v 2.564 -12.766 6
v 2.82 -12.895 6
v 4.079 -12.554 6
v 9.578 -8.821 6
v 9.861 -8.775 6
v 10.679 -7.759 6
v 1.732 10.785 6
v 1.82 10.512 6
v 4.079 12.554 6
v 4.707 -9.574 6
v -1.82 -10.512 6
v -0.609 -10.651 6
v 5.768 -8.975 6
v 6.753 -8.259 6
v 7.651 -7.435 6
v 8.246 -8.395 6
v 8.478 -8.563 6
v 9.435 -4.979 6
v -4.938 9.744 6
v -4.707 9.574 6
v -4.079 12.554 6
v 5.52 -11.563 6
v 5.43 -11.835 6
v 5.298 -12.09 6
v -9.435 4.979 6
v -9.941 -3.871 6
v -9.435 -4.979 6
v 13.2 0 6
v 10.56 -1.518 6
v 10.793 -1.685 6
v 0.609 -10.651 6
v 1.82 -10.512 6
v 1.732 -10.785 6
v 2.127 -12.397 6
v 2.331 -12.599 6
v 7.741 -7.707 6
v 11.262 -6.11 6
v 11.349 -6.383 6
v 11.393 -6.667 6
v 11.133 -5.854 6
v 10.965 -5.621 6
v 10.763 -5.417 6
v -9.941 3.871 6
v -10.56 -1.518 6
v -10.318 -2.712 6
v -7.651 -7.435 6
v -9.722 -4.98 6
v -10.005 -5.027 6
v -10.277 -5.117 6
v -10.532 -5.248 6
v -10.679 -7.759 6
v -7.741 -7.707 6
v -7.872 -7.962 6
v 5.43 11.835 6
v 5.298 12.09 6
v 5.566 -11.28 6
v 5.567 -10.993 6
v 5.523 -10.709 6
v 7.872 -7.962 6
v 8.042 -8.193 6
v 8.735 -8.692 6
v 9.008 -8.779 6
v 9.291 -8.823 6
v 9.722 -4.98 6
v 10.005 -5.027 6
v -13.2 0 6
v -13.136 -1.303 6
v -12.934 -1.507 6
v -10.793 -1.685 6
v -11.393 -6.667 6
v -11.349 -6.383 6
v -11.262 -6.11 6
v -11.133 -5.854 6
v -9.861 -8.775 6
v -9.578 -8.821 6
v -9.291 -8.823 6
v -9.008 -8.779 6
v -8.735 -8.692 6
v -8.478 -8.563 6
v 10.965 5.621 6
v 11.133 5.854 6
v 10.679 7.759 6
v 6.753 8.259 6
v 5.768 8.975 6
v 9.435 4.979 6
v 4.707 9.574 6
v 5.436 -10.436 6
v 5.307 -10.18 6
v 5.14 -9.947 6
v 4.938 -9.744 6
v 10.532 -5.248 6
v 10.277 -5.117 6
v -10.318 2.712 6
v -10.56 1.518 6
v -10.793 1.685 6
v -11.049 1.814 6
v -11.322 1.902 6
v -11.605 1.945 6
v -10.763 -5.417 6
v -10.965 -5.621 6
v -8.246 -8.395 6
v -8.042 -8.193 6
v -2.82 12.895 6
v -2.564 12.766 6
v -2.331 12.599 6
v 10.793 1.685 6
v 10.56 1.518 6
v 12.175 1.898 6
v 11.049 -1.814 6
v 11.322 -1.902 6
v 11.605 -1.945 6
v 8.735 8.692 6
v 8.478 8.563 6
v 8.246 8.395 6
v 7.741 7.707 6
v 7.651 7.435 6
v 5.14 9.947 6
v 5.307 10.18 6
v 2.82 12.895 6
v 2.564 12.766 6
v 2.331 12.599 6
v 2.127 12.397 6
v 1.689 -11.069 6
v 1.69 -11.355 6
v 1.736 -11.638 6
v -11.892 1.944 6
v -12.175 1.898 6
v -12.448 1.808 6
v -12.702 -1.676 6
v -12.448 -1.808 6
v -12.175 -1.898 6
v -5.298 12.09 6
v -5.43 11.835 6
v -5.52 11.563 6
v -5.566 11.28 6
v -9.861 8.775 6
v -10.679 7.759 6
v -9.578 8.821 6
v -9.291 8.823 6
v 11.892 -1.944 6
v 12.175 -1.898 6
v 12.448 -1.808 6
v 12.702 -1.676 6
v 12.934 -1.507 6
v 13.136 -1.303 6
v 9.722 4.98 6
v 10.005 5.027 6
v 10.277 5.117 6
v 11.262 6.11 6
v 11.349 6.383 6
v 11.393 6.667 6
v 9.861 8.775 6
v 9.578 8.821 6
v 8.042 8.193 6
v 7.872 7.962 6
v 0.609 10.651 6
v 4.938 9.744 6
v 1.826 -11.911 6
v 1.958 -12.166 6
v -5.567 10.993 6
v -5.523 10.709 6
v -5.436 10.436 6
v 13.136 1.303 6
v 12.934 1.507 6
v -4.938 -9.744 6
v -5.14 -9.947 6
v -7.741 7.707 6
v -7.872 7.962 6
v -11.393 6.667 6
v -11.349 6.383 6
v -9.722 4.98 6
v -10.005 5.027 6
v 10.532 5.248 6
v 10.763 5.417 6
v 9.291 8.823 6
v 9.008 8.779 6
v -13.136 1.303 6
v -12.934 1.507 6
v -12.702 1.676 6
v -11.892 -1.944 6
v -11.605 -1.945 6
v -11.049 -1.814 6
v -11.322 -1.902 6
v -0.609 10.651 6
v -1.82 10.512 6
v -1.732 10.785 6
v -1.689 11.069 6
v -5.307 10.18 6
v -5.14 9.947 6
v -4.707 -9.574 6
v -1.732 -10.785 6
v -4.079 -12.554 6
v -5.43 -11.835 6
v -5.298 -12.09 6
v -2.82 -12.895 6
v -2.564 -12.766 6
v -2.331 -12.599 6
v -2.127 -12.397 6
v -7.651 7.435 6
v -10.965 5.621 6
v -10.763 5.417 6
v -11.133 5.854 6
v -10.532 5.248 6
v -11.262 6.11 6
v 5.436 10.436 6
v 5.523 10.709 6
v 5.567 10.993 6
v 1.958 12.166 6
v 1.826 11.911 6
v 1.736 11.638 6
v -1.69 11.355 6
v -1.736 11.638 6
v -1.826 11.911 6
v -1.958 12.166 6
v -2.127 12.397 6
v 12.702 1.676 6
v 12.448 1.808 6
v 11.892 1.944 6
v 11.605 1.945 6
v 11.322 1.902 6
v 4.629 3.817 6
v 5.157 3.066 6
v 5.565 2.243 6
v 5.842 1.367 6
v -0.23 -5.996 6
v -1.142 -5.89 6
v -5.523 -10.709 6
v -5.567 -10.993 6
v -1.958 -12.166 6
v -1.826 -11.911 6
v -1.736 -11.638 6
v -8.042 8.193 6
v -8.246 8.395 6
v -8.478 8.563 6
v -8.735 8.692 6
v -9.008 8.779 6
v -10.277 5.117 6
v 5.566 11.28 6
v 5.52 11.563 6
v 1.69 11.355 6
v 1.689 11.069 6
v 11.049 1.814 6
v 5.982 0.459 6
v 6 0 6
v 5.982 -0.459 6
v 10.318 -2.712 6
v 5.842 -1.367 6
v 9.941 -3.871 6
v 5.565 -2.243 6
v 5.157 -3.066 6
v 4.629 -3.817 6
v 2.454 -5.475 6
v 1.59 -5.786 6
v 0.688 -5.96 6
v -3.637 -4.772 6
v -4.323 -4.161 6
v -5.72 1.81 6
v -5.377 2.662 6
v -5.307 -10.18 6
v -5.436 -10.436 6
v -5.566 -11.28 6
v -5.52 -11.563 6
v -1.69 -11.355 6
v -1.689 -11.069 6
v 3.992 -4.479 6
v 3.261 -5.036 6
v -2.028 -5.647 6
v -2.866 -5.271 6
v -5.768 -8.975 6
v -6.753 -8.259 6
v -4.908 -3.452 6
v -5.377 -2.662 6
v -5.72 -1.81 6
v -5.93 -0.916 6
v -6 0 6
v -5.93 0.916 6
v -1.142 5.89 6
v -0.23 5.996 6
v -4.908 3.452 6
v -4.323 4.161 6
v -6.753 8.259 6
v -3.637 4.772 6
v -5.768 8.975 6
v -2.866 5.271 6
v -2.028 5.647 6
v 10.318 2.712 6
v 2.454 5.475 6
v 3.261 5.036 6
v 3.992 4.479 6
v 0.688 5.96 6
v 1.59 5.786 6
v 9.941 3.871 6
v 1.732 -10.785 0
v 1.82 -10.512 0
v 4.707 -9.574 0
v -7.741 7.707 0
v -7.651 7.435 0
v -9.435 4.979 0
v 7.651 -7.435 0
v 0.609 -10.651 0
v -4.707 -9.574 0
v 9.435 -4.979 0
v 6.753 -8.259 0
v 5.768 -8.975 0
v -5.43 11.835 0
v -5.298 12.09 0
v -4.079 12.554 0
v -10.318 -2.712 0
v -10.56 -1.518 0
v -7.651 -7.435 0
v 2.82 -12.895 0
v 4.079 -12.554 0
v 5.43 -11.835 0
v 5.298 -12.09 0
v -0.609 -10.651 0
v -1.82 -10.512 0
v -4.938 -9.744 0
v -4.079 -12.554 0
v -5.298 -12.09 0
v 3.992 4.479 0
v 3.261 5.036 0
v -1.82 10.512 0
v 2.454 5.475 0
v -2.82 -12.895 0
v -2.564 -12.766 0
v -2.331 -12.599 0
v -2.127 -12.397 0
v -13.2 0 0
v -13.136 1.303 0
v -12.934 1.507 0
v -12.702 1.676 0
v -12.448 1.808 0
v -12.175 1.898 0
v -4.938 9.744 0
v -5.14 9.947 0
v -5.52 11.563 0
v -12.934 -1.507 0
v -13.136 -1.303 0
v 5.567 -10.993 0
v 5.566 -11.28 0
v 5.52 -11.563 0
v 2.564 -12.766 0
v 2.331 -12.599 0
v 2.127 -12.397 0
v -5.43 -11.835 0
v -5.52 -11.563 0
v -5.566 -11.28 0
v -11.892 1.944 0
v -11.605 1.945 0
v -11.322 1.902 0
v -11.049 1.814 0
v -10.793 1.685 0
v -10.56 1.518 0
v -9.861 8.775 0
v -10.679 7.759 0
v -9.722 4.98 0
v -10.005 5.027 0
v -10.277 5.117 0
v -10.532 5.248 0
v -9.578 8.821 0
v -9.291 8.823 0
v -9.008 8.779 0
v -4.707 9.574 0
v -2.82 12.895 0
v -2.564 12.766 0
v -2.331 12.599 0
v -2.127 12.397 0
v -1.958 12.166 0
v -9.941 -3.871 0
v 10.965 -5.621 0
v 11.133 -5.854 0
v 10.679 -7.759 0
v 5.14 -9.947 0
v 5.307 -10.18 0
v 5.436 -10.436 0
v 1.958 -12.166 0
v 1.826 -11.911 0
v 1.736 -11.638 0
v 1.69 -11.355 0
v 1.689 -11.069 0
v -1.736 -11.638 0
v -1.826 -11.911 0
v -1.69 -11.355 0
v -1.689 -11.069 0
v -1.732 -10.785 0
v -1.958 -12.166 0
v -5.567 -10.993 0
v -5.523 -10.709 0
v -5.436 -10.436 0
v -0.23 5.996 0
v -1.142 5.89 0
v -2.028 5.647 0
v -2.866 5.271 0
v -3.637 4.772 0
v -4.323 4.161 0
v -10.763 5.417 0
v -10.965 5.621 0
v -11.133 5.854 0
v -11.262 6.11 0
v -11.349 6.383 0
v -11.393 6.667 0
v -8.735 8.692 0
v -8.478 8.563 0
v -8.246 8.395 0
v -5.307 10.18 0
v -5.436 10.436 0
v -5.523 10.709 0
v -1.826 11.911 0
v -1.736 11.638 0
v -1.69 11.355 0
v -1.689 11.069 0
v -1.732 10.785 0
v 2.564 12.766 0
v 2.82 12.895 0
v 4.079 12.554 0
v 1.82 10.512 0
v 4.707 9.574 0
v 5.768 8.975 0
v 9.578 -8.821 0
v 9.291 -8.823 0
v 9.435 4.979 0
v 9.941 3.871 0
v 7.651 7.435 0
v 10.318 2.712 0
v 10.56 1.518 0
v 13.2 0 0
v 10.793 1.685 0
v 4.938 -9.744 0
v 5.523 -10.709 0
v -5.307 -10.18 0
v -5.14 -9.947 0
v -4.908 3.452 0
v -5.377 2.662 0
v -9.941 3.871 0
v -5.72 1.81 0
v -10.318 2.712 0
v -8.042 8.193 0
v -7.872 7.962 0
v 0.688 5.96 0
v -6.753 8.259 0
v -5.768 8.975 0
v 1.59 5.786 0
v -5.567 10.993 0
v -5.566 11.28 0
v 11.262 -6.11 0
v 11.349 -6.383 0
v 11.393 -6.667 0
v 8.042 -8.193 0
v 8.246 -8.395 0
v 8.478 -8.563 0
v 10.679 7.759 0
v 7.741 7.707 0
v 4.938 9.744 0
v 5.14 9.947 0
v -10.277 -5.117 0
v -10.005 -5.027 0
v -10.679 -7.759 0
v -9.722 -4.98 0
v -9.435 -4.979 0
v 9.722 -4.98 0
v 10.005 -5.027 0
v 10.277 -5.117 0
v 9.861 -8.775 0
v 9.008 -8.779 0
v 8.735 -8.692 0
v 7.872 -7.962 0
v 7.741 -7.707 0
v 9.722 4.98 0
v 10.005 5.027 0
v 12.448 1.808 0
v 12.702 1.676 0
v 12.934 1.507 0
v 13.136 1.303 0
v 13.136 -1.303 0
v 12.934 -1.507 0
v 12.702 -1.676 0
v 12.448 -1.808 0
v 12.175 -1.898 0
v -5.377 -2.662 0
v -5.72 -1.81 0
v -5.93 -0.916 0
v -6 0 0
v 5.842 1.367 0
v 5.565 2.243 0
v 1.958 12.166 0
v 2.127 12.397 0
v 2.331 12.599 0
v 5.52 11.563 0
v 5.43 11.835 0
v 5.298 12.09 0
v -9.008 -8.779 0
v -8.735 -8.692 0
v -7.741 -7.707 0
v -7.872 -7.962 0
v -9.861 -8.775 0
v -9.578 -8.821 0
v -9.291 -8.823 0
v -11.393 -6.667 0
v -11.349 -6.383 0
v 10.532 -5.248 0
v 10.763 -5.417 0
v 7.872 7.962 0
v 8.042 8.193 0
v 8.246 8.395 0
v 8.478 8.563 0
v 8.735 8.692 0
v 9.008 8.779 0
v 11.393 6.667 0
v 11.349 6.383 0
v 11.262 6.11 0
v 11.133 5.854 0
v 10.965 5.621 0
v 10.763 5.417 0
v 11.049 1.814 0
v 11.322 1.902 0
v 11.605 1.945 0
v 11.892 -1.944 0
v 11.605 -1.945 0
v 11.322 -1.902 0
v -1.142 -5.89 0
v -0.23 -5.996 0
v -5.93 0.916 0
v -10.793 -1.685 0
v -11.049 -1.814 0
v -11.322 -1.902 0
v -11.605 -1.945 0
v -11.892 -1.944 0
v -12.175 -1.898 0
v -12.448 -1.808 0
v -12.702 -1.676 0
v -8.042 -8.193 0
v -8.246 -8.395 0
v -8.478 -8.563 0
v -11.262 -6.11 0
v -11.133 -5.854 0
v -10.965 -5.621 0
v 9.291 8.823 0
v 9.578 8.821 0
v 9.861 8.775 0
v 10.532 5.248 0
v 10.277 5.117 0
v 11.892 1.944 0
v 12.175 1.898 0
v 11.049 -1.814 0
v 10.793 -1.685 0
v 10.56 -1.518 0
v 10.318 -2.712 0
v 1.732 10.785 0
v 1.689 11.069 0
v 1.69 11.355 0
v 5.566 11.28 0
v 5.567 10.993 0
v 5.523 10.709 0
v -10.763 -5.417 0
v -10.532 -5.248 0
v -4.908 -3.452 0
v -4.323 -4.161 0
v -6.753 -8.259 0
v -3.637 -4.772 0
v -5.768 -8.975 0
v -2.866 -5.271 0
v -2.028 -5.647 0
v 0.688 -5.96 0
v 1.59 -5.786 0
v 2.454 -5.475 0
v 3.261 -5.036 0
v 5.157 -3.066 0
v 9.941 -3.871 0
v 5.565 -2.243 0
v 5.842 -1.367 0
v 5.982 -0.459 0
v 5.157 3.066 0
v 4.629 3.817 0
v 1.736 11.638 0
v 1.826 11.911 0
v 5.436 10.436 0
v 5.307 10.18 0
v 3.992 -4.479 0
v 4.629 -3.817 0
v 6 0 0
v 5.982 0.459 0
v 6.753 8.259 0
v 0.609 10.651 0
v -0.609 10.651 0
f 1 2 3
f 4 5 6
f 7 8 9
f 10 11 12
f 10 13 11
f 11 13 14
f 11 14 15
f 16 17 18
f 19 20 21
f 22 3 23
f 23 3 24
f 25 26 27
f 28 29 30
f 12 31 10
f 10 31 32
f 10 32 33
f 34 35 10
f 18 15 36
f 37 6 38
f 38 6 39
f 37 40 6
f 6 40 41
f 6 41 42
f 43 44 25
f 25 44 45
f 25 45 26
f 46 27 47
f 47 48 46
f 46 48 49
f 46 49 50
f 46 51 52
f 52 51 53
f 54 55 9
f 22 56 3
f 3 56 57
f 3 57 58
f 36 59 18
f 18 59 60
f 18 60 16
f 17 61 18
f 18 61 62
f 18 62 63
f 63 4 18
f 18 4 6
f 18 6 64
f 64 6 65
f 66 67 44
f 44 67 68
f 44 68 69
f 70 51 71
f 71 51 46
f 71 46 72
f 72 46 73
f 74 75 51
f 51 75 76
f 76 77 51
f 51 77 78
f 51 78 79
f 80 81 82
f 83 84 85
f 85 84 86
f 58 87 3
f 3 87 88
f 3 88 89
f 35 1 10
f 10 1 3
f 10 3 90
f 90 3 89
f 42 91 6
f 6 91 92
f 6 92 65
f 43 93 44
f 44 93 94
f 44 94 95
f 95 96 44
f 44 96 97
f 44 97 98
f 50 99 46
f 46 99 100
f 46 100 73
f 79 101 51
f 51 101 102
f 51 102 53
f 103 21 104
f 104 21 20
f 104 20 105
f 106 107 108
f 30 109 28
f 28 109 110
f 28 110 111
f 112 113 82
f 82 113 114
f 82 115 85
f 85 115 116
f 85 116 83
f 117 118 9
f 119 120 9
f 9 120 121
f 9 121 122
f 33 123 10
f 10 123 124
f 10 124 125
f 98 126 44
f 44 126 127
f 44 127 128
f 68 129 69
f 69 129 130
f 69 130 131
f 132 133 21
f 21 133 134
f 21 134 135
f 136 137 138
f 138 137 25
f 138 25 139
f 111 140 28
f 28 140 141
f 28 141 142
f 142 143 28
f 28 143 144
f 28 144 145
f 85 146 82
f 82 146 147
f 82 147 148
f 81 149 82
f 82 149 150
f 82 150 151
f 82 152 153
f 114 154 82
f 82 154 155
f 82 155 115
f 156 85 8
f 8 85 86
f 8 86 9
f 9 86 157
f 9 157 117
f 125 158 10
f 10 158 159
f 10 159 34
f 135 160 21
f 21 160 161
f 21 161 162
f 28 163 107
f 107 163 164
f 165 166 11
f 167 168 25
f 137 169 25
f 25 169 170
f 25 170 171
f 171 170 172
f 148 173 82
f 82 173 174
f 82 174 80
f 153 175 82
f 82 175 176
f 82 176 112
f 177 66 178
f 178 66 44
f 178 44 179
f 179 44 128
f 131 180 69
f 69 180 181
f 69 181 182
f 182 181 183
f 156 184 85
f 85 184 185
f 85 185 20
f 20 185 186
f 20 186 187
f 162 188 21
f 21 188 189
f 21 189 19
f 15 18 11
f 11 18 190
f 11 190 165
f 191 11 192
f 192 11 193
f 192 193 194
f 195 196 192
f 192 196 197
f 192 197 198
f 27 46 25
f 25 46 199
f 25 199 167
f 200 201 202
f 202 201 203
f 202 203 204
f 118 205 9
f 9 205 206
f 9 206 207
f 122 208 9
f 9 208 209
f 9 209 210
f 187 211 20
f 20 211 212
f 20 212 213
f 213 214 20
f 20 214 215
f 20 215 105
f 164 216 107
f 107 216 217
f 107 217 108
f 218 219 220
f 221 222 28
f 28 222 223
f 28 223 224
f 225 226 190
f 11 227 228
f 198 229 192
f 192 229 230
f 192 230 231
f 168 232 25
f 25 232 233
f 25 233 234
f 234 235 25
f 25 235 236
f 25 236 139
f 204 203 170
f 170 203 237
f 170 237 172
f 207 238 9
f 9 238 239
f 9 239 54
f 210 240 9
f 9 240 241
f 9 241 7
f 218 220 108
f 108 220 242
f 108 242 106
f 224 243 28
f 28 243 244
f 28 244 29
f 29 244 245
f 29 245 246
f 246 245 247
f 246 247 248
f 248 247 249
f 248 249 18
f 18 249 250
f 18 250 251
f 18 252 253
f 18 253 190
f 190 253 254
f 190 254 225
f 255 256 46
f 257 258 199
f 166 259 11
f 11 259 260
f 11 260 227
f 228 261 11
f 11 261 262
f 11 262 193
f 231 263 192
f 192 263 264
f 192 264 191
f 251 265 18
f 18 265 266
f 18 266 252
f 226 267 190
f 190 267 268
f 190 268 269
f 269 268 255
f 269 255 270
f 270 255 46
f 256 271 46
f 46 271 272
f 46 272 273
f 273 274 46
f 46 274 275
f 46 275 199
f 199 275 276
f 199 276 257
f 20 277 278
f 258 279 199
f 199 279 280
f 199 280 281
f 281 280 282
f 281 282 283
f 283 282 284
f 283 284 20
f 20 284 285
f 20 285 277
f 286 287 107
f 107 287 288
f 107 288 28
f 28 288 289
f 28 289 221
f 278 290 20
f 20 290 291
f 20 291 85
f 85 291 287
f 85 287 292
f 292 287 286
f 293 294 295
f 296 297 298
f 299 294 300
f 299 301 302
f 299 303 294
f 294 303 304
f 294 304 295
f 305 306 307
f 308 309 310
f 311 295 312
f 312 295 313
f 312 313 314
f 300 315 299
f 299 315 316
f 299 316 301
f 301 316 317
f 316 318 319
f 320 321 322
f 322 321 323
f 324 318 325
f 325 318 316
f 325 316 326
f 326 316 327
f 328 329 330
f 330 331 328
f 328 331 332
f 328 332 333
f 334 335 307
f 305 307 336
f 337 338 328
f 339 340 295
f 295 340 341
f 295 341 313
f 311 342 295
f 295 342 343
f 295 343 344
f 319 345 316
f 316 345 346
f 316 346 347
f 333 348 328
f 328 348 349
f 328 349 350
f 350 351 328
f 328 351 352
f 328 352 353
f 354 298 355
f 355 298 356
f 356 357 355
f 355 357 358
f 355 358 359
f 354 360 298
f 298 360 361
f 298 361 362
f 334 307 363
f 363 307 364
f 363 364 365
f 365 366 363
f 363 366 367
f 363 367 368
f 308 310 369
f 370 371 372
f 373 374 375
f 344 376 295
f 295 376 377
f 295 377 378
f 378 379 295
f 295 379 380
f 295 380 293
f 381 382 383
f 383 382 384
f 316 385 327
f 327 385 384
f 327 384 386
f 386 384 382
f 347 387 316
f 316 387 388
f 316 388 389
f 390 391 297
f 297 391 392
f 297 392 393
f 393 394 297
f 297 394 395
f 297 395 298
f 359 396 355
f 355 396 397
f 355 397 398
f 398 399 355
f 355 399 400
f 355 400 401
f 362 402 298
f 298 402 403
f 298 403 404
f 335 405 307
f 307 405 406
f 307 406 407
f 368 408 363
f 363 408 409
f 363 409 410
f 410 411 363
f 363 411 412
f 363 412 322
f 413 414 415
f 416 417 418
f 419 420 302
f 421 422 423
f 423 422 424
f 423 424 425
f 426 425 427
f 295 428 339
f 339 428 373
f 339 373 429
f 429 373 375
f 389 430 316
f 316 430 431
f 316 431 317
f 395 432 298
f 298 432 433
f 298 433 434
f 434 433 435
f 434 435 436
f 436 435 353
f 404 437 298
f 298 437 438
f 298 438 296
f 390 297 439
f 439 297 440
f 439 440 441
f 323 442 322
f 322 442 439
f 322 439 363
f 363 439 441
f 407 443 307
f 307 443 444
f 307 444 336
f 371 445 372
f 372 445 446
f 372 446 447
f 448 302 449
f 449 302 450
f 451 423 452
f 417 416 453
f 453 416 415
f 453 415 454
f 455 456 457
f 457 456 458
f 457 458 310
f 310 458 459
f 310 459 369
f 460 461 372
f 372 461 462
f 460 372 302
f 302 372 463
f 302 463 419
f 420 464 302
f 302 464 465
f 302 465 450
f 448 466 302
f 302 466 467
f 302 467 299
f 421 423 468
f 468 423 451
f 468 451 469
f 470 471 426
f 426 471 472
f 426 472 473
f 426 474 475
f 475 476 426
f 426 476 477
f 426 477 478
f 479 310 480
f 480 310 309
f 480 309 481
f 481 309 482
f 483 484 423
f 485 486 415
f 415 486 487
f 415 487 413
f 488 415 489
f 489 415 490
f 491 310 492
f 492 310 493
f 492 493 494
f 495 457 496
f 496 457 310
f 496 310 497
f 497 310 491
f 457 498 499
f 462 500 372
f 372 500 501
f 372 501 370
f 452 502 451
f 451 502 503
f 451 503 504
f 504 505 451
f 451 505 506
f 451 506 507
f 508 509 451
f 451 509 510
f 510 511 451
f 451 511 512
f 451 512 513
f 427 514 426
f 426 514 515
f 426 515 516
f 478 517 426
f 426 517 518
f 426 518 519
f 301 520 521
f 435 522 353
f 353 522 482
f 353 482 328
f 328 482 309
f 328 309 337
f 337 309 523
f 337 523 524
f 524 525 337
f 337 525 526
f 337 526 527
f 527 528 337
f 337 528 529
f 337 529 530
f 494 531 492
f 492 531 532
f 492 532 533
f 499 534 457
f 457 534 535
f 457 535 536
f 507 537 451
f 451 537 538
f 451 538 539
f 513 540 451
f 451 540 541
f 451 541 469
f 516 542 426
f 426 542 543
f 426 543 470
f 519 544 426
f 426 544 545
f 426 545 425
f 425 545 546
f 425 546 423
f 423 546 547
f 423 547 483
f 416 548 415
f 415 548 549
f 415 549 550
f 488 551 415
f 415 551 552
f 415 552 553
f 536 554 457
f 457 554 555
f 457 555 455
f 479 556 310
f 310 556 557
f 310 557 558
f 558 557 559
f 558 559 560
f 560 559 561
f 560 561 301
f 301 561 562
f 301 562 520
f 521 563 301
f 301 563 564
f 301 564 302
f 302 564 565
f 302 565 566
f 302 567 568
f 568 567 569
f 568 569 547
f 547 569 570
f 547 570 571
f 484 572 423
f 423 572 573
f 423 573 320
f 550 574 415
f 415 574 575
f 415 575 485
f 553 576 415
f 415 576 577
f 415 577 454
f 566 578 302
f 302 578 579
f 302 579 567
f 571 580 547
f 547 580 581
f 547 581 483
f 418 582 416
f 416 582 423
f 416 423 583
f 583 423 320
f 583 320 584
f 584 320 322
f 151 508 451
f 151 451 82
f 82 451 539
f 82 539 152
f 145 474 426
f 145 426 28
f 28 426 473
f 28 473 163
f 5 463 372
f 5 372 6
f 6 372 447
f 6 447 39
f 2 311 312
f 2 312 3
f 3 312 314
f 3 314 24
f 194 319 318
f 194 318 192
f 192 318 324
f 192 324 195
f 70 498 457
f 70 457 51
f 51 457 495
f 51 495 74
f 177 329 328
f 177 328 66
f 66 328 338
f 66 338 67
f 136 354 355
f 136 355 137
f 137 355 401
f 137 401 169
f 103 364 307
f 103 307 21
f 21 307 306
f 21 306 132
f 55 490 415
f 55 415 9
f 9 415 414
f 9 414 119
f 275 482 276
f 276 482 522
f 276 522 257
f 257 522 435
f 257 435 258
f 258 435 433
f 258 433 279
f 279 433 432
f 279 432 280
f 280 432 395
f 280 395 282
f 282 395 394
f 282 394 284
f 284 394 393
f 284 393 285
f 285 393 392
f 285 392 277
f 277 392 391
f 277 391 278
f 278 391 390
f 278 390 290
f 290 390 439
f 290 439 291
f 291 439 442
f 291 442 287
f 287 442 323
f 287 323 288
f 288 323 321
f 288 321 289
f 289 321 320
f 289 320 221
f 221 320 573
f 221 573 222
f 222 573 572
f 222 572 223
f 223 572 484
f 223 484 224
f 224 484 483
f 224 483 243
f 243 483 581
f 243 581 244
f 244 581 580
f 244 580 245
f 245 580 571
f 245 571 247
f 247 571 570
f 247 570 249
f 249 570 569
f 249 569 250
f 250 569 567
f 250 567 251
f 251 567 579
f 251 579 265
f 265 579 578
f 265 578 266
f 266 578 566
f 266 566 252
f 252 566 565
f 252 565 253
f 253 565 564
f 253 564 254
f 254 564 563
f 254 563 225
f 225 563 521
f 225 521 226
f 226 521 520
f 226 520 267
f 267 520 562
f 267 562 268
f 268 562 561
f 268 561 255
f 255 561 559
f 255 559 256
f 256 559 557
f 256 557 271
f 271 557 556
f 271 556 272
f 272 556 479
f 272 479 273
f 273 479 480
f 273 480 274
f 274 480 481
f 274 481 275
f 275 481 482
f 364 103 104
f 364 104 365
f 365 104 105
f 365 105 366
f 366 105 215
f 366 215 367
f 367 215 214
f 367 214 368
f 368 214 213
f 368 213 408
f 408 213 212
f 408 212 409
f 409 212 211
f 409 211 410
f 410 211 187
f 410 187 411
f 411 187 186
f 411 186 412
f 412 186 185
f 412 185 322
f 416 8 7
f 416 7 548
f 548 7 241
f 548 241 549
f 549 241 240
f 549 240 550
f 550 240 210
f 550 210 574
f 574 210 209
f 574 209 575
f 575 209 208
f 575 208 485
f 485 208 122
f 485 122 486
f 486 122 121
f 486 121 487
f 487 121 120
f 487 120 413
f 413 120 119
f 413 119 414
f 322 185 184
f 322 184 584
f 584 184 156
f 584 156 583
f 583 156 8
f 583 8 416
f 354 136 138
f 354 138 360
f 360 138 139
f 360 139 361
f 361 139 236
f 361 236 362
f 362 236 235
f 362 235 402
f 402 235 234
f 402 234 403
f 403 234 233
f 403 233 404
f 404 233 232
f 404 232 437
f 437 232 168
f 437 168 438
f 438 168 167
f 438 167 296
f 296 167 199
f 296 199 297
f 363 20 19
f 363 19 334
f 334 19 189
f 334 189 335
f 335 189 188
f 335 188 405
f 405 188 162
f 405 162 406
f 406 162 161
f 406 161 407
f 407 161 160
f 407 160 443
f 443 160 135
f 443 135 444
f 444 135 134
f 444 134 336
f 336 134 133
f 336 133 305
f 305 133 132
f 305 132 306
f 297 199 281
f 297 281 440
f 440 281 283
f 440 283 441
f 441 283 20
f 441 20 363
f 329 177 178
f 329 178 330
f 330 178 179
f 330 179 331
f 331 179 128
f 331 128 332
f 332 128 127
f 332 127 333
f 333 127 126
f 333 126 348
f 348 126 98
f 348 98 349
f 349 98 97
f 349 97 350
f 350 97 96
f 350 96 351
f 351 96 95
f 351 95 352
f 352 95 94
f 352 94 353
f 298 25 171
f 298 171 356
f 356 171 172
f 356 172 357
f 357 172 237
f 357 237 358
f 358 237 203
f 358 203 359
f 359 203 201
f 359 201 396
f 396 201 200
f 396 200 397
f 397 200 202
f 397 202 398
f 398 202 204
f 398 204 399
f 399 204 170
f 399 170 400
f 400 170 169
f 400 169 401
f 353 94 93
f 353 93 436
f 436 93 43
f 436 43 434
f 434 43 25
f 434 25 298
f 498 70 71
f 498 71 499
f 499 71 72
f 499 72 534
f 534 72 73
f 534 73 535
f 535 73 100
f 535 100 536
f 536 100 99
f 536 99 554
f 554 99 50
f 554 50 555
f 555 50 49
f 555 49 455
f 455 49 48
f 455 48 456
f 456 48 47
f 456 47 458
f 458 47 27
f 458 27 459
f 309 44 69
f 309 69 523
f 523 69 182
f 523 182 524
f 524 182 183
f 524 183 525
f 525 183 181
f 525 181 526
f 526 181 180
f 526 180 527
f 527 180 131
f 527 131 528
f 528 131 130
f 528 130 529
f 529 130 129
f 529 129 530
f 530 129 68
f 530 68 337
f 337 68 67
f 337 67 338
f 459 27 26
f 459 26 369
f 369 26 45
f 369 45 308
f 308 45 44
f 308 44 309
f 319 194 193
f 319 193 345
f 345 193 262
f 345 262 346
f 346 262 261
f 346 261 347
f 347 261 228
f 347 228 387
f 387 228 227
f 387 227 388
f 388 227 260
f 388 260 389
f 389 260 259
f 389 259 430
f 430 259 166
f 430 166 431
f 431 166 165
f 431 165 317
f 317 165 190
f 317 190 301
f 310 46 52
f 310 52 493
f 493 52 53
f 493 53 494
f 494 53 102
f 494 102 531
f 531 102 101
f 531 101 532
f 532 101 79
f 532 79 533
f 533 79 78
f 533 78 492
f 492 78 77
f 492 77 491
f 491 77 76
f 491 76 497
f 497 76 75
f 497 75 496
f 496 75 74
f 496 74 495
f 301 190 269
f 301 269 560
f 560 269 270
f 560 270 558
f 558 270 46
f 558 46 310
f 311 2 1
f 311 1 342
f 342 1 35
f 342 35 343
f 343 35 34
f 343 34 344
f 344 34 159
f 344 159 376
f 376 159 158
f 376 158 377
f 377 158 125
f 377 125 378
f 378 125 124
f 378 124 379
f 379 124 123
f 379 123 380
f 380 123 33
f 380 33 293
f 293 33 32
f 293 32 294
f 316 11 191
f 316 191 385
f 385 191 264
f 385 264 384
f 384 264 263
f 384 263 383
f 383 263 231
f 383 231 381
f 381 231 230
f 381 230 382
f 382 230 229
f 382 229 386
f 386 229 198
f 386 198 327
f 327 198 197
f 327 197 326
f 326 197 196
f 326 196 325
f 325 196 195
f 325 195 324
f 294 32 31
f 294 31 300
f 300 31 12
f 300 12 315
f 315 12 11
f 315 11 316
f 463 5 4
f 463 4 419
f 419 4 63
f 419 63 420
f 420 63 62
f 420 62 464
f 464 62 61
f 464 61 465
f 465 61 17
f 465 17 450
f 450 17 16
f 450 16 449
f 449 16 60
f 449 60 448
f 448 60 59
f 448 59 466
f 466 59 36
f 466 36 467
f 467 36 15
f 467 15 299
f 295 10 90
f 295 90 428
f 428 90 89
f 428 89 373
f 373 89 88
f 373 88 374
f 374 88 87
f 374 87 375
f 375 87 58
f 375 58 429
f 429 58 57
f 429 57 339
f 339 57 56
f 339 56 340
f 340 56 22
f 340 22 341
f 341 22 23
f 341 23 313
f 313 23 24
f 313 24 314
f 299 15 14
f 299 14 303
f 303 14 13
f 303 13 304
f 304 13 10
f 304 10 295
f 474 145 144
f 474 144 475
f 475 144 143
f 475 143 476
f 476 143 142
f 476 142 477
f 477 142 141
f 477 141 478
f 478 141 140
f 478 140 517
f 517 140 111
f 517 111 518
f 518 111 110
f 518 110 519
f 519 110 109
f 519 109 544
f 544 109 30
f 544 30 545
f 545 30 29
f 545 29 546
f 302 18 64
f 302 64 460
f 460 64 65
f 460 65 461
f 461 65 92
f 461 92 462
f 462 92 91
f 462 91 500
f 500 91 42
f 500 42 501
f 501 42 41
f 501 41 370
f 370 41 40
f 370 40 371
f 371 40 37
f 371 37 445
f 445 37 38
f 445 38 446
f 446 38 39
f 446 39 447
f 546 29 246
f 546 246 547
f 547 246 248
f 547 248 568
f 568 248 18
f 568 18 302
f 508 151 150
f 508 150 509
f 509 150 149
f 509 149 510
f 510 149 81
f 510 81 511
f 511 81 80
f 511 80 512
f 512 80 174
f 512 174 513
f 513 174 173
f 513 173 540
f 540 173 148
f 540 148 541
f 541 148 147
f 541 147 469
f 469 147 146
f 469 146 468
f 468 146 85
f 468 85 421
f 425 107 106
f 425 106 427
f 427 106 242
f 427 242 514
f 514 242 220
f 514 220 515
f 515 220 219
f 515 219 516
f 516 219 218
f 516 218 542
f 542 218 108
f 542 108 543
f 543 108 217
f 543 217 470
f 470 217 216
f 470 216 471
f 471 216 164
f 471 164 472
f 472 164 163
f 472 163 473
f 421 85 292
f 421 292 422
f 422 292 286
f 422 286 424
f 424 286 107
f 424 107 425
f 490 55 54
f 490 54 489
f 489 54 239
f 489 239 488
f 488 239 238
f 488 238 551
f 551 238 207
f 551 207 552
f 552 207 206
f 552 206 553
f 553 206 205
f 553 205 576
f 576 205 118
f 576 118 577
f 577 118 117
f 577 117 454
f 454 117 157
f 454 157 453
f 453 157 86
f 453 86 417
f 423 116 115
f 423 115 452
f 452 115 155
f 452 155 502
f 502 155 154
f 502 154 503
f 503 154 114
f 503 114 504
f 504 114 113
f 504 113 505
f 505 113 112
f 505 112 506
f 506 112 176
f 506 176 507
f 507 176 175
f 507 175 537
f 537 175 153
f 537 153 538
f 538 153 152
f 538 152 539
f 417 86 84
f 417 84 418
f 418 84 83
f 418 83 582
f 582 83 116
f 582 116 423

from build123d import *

# Parameters (mm, degrees)
SKETCH1_R           = 13.2
SKETCH1_R_2         = 6
BOSS_EXTRUDE1_DEPTH = 6
CUT_EXTRUDE1_DEPTH  = 7
CIRPATTERN1_COUNT   = 10


with BuildPart() as part:
    # Sketch1 → Boss-Extrude1 (new body)
    with BuildSketch(Plane.XY):
        Circle(SKETCH1_R)
        Circle(SKETCH1_R_2, mode=Mode.SUBTRACT)
    extrude(amount=BOSS_EXTRUDE1_DEPTH)

    # Sketch2 → Cut-Extrude1 (cut, through all)
    with BuildSketch(Plane.XY.offset(6)):
        with BuildLine():
            ThreePointArc((-2.819851171, 12.895287487), (0, 13.2), (2.819851171, 12.895287487))
            ThreePointArc((2.819851171, 12.895287487), (1.826256171, 11.910750525), (1.819851171, 10.512))
            ThreePointArc((1.819851171, 10.512), (0, 10.668364555), (-1.819851171, 10.512))
            ThreePointArc((-1.819851171, 10.512), (-1.826256171, 11.910750525), (-2.819851171, 12.895287487))
        make_face()
    cut_extrude1 = extrude(amount=-CUT_EXTRUDE1_DEPTH, mode=Mode.SUBTRACT)

    # CirPattern1: Cut-Extrude1 ×10 about axis
    cirpattern1_axis = Axis((0, 0, 0), (0, 0, 1))
    for i in range(1, CIRPATTERN1_COUNT):
        add(cut_extrude1.rotate(cirpattern1_axis, i * 360 / CIRPATTERN1_COUNT), mode=Mode.SUBTRACT)


solid = part.part
